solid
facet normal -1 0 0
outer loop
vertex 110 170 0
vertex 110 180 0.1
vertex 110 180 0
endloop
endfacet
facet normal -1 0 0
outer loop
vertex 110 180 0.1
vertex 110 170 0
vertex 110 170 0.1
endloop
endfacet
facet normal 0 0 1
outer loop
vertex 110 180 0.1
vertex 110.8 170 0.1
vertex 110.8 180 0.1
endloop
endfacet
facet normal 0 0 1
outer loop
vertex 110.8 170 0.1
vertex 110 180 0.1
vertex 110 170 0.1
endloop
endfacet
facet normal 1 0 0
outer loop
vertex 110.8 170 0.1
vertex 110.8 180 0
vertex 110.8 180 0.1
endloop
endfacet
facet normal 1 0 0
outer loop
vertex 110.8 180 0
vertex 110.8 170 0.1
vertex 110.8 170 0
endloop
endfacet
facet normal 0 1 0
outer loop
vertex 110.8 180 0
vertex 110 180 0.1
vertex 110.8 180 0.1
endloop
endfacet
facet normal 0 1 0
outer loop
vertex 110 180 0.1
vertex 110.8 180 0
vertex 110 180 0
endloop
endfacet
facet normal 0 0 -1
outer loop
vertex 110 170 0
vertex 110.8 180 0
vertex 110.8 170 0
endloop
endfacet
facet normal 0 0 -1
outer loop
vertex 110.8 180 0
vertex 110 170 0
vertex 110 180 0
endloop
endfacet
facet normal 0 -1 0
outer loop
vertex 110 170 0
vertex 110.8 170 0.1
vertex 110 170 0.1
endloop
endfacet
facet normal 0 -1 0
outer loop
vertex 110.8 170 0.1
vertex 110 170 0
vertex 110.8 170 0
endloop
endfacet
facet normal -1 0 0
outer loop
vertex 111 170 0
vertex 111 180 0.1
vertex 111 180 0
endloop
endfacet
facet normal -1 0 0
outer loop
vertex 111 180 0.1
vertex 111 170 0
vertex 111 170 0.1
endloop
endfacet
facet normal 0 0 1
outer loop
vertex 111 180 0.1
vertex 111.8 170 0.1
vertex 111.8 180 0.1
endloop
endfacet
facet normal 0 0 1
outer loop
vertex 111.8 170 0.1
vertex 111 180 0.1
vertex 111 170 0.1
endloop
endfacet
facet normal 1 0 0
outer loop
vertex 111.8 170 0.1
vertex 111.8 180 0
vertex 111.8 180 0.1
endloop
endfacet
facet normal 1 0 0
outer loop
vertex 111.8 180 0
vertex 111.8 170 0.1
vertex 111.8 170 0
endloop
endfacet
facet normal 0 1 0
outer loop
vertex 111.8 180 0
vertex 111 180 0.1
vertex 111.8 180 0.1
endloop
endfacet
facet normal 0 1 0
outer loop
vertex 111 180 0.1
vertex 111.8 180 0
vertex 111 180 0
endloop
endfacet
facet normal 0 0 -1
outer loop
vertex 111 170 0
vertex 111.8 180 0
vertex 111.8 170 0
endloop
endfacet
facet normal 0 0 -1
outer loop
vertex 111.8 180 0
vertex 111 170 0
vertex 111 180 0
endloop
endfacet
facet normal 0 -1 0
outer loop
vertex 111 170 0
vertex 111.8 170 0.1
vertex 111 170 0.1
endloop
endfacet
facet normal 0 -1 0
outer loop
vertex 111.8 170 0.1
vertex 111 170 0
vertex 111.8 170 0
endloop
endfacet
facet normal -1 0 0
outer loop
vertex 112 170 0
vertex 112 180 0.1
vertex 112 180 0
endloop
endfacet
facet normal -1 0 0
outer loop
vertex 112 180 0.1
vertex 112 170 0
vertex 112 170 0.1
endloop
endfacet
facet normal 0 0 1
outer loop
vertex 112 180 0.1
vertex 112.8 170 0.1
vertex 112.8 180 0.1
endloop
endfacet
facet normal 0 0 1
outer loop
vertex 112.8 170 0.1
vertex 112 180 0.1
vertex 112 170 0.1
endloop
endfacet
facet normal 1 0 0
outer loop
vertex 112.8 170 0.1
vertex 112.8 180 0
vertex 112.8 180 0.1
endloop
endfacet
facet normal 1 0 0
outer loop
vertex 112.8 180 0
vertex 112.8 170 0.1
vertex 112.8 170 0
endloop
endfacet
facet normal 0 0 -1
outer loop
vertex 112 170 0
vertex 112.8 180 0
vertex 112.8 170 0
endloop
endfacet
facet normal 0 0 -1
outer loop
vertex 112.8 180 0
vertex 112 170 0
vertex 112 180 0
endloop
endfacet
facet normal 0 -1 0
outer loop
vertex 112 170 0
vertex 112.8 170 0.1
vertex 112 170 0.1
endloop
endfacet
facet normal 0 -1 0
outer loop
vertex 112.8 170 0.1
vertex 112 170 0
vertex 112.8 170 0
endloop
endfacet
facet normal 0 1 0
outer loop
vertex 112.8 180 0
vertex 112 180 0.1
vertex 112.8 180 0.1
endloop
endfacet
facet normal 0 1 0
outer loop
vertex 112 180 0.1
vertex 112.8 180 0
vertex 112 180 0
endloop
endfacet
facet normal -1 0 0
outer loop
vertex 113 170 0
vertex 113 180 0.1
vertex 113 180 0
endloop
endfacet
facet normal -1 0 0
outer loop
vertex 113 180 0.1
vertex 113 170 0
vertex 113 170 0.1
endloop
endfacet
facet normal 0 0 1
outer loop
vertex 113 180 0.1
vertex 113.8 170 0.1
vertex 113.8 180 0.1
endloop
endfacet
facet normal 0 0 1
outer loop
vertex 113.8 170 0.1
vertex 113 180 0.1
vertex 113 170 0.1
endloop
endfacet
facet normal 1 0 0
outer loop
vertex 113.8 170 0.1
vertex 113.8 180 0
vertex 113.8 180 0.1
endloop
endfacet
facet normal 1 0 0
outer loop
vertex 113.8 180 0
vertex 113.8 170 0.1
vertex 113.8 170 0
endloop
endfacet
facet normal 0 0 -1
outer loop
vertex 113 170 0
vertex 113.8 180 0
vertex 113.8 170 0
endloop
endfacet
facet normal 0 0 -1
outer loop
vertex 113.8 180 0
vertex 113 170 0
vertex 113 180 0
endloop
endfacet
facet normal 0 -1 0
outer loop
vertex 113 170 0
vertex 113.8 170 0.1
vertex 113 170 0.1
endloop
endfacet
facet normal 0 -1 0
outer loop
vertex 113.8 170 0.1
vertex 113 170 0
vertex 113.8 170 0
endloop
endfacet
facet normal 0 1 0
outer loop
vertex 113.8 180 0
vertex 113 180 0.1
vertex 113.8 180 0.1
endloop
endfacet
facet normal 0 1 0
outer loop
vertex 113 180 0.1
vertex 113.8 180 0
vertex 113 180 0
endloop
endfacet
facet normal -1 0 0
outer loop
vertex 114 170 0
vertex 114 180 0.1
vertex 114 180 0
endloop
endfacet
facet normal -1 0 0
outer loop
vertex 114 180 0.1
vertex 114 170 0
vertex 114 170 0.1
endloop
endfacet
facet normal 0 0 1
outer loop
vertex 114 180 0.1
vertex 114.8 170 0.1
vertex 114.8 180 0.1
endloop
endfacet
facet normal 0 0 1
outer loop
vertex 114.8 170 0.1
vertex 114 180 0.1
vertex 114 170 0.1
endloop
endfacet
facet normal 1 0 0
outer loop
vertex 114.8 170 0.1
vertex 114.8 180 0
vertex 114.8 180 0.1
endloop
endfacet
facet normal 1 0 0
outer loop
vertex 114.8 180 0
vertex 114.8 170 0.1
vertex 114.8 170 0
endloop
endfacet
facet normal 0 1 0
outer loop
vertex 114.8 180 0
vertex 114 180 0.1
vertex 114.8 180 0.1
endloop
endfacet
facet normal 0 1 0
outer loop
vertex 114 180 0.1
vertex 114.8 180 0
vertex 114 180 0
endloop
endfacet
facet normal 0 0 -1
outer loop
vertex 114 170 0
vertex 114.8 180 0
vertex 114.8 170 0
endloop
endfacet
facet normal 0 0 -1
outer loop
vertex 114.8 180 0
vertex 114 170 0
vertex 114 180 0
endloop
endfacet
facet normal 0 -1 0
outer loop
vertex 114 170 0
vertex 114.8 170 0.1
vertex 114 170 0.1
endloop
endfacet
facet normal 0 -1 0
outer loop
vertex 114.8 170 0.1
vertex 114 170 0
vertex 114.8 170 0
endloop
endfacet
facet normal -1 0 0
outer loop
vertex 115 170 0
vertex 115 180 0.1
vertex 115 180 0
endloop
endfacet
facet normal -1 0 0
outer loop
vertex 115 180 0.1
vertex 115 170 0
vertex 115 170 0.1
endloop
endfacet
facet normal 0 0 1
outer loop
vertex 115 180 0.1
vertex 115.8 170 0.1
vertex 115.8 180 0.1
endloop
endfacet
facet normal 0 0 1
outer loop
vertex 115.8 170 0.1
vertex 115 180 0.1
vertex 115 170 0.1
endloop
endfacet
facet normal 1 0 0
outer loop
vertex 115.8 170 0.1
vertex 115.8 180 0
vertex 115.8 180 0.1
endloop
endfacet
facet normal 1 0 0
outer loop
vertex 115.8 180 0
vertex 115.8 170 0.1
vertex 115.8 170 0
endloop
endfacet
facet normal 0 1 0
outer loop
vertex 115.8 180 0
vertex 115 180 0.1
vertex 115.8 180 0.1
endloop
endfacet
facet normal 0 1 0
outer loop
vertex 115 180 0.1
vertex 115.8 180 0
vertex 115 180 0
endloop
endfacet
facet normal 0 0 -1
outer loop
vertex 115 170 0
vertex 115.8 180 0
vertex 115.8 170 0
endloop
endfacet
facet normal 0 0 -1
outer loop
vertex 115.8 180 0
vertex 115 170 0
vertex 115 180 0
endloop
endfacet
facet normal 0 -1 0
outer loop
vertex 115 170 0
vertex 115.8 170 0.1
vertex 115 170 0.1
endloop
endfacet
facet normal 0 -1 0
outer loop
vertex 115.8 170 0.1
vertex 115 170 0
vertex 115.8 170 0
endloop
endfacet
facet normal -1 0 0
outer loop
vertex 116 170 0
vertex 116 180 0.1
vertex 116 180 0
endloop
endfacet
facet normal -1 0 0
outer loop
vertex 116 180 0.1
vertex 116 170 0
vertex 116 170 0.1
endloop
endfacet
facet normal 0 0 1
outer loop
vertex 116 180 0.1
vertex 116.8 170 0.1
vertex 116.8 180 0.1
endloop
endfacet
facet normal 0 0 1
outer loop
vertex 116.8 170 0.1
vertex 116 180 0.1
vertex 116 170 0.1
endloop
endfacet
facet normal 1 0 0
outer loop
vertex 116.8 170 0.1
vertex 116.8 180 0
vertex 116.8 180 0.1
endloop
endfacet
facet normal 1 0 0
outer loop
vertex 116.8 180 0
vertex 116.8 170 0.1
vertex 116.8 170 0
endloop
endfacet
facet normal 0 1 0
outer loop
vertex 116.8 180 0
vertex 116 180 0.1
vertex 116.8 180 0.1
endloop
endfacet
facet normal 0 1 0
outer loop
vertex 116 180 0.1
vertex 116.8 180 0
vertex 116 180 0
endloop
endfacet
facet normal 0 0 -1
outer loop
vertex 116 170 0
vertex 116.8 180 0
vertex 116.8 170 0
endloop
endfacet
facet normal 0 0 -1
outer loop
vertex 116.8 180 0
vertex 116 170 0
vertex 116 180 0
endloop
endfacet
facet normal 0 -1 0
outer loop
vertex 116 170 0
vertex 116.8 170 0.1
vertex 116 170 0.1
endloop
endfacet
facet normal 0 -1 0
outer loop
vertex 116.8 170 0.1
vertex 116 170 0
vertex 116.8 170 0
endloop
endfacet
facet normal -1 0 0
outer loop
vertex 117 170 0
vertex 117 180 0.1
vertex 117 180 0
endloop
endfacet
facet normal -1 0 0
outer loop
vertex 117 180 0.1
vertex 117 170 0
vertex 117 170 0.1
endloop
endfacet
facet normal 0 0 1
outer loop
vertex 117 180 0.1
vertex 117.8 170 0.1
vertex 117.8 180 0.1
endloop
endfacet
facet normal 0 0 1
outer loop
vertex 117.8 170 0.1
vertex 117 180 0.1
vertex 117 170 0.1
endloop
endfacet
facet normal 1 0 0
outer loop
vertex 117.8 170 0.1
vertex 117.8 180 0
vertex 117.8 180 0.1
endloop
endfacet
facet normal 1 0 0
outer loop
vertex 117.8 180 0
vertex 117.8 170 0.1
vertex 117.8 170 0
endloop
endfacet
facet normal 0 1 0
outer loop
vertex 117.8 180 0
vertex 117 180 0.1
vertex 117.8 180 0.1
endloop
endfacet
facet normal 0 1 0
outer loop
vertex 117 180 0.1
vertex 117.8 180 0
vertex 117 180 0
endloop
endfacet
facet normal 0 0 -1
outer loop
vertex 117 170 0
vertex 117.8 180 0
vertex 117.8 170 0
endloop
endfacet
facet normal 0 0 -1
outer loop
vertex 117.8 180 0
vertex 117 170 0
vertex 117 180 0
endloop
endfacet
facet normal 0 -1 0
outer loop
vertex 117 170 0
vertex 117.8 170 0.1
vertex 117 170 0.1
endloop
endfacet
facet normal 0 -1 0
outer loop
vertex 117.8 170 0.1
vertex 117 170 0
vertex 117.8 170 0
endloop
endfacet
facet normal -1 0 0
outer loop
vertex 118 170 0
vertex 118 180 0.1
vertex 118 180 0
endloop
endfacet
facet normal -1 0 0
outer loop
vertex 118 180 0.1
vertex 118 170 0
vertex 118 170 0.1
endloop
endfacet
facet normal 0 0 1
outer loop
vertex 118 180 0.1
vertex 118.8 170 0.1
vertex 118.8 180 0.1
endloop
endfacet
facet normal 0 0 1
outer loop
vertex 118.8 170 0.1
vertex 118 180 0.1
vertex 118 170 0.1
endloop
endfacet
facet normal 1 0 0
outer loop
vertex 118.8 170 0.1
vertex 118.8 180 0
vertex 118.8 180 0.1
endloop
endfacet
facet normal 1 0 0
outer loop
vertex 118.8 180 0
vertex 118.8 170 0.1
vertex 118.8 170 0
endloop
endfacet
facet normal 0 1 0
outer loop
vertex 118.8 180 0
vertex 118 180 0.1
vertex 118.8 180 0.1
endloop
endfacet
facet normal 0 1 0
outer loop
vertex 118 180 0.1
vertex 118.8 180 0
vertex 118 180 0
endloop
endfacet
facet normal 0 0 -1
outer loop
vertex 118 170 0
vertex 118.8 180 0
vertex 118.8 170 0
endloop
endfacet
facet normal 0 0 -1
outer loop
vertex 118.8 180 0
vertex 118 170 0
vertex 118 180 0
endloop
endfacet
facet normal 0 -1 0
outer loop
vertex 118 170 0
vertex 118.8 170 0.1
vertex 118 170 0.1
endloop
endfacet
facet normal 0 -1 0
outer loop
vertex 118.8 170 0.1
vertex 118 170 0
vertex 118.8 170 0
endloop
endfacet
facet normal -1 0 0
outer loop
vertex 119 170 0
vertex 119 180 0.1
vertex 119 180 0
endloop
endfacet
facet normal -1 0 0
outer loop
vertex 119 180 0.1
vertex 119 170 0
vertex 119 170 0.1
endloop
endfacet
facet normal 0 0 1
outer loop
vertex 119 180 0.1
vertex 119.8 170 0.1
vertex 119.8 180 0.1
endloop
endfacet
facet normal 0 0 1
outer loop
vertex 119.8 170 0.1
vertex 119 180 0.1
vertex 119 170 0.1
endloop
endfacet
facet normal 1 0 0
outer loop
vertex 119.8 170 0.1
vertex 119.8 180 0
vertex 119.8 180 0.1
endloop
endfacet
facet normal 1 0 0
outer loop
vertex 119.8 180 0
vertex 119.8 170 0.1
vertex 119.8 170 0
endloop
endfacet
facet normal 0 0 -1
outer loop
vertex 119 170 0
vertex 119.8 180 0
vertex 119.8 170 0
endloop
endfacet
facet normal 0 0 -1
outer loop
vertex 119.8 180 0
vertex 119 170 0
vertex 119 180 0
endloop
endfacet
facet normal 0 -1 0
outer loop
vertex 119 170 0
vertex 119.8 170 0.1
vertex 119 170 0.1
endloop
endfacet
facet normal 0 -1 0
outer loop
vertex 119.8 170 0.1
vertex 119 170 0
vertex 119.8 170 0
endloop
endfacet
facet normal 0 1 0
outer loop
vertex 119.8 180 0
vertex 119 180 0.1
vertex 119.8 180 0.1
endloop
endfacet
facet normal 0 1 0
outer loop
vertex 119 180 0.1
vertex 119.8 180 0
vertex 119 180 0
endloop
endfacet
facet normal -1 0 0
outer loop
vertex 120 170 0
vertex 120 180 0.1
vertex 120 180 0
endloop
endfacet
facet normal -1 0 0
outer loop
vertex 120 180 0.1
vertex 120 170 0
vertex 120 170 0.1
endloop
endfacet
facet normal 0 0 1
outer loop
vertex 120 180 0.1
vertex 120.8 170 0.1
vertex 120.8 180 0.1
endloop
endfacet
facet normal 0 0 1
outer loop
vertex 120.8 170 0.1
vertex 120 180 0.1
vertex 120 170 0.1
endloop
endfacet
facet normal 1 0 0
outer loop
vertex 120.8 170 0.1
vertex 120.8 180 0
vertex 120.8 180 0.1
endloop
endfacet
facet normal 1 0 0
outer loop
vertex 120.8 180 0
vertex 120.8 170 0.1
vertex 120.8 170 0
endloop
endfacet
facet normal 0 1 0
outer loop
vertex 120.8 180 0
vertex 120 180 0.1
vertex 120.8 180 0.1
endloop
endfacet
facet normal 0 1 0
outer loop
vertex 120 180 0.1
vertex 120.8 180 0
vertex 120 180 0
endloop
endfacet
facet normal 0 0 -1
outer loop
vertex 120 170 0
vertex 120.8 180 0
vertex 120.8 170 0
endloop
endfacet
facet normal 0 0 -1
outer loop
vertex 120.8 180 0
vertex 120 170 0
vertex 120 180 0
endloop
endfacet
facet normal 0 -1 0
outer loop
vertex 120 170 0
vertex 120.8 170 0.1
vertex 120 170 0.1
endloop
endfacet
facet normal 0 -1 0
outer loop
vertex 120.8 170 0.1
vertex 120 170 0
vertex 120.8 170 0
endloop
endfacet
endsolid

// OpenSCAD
translate([10+100,10+160,0])
        for (i = [0 : 10]){
            translate([i,0,0])
                cube(size = [0.8,10,0.1]);
    }
